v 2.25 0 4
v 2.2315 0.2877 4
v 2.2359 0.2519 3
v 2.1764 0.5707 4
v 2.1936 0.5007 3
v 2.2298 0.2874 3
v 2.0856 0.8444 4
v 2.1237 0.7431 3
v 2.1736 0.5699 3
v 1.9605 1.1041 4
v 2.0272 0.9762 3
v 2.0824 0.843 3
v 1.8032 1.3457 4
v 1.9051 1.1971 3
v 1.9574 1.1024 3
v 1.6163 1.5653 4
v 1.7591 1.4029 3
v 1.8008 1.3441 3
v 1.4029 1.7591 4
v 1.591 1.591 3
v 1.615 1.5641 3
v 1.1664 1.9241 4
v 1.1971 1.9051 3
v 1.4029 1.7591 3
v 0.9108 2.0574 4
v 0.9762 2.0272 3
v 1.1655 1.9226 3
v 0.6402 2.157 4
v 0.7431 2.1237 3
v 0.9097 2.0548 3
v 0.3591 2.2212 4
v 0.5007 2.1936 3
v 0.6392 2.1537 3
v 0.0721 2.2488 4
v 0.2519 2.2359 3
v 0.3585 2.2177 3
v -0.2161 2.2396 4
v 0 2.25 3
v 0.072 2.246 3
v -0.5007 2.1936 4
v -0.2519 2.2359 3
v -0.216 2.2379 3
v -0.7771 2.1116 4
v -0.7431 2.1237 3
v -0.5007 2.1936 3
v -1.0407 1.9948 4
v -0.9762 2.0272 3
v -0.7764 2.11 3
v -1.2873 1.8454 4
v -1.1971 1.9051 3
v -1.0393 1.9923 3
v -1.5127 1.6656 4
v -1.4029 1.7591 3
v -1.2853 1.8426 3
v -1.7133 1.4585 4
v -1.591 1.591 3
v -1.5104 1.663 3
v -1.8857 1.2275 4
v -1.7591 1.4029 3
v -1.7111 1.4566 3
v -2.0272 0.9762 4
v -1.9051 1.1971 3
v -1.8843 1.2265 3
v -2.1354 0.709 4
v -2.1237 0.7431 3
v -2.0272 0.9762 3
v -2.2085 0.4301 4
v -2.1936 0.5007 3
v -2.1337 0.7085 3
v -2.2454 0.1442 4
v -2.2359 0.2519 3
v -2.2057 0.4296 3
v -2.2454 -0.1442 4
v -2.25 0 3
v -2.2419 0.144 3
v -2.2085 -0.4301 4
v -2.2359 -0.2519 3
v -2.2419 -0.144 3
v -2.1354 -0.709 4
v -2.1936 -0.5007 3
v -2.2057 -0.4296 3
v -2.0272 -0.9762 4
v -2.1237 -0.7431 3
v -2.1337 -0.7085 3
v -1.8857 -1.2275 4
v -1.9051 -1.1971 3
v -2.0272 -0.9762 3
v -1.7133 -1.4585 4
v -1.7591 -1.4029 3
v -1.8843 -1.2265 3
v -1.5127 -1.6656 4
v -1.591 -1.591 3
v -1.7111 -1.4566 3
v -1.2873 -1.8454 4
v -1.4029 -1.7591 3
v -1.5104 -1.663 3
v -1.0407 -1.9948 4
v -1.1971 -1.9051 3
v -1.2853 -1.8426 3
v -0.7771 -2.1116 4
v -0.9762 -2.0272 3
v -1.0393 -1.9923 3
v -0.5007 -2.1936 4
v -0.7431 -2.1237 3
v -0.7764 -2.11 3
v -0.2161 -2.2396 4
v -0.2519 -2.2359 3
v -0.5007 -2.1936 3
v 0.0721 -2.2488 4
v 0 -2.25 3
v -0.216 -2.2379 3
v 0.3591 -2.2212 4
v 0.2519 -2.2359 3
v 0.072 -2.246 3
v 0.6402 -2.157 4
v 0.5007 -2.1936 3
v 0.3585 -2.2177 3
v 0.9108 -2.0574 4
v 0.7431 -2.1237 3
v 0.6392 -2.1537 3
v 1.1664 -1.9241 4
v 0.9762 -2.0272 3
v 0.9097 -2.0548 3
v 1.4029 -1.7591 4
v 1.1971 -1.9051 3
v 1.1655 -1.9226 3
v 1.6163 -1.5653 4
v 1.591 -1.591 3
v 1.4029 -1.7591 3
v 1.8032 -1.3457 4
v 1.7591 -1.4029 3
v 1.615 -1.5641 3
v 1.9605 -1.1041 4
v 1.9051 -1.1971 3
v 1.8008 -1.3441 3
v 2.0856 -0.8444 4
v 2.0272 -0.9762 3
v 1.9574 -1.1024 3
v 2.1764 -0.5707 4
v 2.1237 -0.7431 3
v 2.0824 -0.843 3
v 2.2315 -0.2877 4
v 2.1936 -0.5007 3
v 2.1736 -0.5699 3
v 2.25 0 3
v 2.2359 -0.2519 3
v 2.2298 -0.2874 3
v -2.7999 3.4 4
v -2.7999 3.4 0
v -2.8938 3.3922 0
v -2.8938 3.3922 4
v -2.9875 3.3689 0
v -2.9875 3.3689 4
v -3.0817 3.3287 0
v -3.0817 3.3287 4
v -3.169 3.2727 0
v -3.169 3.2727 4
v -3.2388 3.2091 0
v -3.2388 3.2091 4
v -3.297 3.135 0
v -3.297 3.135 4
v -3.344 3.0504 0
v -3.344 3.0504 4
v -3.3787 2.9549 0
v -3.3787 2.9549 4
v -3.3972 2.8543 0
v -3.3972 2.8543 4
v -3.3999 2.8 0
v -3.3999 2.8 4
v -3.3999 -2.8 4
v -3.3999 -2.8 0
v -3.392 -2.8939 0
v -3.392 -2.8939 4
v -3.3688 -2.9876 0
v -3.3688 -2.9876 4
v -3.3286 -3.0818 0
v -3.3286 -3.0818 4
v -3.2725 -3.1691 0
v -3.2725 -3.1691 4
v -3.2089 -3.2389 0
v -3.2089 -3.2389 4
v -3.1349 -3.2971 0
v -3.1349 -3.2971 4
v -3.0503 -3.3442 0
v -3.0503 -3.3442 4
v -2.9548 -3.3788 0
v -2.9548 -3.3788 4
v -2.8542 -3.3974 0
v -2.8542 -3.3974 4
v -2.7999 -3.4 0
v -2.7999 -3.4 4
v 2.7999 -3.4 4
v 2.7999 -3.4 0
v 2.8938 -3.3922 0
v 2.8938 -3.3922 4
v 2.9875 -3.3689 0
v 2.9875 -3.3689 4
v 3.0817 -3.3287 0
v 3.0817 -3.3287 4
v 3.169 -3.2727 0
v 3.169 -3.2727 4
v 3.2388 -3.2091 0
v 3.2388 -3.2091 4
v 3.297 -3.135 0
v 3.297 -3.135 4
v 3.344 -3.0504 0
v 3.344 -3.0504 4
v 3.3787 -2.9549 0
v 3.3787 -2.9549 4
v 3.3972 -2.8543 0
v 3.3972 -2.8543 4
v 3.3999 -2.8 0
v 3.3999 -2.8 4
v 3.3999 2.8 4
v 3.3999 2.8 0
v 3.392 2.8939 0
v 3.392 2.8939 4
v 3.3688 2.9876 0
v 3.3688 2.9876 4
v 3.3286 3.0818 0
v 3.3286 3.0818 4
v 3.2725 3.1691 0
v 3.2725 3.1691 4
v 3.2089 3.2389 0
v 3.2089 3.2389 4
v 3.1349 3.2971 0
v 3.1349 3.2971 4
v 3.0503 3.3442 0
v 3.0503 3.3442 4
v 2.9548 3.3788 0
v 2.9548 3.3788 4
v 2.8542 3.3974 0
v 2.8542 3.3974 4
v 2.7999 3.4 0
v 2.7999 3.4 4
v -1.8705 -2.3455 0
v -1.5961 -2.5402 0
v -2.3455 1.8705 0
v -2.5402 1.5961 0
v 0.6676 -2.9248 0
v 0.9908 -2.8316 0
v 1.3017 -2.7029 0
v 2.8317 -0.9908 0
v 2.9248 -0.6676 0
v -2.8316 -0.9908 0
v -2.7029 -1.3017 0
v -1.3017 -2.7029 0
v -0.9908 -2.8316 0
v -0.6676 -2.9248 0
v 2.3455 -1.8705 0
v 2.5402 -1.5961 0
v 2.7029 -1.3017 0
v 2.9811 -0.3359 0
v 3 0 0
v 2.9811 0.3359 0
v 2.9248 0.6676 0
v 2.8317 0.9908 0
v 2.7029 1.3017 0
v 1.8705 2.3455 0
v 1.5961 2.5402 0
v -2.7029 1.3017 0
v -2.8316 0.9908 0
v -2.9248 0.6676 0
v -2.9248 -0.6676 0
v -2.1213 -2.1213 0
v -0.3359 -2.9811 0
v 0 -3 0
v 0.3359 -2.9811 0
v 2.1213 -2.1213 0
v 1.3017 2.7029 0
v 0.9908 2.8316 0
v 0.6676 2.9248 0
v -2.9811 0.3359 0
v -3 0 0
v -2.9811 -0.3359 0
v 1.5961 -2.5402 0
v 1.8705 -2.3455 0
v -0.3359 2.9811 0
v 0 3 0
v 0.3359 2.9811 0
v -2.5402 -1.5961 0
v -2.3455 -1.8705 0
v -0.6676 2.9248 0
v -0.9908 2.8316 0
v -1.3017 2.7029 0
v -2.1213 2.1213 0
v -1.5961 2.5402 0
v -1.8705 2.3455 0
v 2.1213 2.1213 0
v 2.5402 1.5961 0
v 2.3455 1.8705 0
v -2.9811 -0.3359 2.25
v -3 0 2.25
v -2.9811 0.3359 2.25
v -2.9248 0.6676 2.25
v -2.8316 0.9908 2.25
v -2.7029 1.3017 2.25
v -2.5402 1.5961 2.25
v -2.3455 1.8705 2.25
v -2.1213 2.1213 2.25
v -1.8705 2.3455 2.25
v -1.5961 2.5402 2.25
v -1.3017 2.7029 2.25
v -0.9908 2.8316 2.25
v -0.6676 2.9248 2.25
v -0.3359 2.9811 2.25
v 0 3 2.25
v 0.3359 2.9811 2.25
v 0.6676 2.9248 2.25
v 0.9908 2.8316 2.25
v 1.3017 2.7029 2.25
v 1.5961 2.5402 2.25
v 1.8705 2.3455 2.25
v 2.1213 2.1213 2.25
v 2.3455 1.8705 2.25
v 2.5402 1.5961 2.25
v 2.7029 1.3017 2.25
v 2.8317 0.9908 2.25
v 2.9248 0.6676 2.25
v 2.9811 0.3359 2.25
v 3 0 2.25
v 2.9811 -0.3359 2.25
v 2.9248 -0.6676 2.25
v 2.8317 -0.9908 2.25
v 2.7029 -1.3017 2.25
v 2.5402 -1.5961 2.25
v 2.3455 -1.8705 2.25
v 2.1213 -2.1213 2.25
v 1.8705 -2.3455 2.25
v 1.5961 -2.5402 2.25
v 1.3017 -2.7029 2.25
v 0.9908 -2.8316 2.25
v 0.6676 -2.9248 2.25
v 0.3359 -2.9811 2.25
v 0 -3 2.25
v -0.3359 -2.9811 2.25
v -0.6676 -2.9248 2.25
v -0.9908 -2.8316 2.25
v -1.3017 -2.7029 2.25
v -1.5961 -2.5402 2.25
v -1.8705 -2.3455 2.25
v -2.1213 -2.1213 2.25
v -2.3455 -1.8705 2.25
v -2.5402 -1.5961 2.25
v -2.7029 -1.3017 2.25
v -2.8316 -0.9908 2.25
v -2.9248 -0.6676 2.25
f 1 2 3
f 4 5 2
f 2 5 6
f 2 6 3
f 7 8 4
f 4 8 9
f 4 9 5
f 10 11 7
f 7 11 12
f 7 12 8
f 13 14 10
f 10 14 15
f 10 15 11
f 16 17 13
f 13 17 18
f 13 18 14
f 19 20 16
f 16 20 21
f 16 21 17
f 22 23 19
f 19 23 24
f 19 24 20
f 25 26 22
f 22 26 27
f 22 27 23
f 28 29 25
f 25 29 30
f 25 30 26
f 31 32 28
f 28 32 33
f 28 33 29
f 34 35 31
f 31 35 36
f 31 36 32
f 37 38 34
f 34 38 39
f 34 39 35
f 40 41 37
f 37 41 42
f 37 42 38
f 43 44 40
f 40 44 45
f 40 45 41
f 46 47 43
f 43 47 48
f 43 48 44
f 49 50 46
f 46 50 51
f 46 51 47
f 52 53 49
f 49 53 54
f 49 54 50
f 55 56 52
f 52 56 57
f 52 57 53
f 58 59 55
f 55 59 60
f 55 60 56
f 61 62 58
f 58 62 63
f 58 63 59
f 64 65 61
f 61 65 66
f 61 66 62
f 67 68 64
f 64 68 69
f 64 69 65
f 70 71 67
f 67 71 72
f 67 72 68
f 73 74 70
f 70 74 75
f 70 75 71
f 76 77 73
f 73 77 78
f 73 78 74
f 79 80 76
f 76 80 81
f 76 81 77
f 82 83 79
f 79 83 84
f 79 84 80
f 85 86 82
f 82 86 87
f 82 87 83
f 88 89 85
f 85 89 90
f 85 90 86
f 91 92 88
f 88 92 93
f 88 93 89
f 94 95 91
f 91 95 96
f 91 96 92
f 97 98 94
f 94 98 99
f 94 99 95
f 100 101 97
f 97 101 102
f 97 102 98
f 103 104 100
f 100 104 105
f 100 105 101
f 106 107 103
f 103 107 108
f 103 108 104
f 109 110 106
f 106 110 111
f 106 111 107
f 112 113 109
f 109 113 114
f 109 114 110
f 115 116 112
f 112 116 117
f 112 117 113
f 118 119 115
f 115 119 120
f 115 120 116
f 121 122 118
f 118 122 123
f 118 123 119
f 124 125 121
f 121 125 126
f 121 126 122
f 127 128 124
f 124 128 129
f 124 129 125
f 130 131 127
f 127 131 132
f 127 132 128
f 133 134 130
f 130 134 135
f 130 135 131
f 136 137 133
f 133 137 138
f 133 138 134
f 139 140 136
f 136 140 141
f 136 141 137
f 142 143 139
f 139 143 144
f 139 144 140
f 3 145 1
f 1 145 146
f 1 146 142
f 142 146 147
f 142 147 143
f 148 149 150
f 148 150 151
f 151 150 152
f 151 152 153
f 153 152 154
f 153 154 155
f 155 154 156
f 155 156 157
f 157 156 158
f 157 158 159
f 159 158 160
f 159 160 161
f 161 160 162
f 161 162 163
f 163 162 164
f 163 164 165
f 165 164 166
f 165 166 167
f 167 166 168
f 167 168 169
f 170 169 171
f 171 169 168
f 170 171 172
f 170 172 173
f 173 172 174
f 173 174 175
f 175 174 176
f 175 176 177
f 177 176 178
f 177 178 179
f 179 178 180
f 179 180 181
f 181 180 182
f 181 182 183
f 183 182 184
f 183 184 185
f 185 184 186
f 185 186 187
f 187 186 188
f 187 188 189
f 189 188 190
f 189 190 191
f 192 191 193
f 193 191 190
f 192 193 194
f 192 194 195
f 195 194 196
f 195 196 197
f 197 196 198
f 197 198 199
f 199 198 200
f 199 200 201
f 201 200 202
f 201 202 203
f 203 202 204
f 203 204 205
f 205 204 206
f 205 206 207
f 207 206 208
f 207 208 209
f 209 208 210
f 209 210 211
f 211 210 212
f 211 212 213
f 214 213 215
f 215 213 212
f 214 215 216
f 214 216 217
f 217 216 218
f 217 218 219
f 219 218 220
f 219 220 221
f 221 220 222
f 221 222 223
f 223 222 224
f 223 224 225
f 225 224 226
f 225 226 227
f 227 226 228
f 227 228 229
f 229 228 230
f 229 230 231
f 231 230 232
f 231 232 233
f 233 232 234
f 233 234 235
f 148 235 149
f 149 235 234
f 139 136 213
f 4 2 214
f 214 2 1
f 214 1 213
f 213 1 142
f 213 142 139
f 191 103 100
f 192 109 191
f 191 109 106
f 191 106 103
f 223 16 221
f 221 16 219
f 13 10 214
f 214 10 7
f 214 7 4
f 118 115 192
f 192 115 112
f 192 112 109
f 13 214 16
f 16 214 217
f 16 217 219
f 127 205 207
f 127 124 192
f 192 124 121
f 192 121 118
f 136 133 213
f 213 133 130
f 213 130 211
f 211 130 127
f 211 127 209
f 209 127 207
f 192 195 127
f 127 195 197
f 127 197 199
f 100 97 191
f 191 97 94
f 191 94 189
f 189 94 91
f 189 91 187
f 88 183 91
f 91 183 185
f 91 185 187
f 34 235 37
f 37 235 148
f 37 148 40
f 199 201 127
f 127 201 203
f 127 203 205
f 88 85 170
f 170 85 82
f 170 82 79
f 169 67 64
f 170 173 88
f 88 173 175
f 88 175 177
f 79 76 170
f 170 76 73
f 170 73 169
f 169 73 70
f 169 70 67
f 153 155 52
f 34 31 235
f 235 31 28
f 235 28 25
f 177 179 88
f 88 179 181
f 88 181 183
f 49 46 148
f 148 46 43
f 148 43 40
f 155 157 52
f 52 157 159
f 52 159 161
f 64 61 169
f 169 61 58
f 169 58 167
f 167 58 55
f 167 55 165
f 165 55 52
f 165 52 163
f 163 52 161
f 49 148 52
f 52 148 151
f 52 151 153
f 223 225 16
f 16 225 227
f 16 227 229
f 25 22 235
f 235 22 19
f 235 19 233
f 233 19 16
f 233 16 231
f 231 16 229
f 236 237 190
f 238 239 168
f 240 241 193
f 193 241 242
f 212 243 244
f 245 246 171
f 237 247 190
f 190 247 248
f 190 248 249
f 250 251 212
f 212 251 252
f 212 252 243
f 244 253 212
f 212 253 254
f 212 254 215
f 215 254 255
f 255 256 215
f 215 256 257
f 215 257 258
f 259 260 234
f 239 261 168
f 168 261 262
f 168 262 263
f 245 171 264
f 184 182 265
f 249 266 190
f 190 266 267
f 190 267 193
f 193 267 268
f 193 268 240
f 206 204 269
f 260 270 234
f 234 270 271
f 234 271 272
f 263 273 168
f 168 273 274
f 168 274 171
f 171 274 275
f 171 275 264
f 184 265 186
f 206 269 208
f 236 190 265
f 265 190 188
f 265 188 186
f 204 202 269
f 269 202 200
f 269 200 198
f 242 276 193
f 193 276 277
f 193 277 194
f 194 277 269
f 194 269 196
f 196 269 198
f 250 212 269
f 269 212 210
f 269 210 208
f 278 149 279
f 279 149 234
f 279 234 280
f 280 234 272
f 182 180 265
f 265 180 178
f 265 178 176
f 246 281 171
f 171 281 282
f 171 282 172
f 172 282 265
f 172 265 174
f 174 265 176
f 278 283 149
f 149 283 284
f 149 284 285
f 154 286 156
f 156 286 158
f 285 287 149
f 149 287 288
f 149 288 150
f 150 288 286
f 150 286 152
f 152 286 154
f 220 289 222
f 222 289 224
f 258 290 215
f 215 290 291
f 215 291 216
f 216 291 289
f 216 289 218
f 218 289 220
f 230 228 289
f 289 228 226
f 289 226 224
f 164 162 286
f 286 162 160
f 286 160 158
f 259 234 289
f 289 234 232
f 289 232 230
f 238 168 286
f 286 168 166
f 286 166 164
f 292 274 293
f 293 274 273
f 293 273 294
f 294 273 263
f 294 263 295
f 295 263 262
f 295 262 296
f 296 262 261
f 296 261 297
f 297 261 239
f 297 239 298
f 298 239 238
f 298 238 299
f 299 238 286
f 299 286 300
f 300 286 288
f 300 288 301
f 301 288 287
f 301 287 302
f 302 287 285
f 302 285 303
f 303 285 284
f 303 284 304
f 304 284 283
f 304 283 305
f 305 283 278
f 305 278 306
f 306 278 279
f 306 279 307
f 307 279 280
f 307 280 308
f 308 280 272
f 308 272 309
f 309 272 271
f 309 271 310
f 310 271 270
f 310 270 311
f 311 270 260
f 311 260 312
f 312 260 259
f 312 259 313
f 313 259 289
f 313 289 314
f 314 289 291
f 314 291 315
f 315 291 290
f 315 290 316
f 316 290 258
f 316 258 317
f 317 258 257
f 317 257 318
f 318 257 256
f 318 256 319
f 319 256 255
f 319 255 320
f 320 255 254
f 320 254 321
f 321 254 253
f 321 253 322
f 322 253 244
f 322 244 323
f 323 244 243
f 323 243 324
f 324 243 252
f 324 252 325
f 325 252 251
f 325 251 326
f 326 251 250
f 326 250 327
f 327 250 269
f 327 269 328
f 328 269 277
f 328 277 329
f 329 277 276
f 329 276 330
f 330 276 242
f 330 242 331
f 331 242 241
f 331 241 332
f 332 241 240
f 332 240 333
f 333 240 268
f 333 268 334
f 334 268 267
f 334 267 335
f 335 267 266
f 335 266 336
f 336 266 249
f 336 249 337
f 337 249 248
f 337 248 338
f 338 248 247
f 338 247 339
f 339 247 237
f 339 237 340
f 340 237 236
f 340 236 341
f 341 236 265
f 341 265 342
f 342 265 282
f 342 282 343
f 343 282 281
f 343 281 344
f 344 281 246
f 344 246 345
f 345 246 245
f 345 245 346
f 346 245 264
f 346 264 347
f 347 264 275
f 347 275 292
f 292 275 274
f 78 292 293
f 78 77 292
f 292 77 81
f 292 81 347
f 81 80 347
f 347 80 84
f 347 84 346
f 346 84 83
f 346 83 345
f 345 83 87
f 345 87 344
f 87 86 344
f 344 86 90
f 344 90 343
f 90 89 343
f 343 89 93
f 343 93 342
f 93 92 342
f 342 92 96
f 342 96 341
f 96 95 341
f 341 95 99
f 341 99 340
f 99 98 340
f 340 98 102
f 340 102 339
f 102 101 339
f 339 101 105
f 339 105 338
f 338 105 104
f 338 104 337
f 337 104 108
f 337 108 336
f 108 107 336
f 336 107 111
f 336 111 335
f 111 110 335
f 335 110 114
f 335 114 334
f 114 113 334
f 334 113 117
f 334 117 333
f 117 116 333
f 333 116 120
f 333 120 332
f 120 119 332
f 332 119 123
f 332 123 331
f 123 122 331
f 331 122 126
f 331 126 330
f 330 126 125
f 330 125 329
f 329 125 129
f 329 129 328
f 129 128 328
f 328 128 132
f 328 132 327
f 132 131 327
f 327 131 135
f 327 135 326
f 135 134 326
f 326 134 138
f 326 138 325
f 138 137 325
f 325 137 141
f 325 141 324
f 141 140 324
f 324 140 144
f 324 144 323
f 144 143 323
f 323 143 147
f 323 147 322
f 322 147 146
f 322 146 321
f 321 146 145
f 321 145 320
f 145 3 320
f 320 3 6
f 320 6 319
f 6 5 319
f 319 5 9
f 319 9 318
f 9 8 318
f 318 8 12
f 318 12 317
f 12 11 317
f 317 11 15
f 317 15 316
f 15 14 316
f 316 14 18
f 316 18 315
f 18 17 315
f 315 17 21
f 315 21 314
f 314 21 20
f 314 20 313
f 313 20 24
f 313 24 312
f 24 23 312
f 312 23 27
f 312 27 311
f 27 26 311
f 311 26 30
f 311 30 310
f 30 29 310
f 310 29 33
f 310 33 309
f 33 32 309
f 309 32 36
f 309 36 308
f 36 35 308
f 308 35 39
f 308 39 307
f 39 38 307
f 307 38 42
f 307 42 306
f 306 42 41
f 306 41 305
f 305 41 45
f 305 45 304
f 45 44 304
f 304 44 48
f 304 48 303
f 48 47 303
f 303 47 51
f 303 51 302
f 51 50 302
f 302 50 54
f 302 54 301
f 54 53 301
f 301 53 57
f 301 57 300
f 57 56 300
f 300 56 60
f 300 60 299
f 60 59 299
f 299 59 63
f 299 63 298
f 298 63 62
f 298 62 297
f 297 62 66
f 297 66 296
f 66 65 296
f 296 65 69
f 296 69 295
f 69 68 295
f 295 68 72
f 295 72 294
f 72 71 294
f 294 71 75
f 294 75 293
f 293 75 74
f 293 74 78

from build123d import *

# Parameters (mm, degrees)
BOSS_EXTRUDE1_DEPTH = 4
SKETCH2_R           = 2.25
CUT_EXTRUDE1_DEPTH  = 4
SKETCH3_R           = 3
CUT_EXTRUDE2_DEPTH  = 2
CHAMFER1_SIZE       = 1


with BuildPart() as part:
    # Sketch1 → Boss-Extrude1 (new body)
    with BuildSketch(Plane.XY):
        with BuildLine():
            Line((-3.399881961, 2.8), (-3.399881961, -2.8))
            add(Edge.make_bspline(
                [(-3.399881961, -2.8), (-3.399881961, -2.953071187), (-3.271882834, -3.271984466), (-2.952966029, -3.4), (-2.799893385, -3.4)],
                knots=[-1.570796327, -1.570796327, -1.570796327, -1.570796327, -0.785398163, 0, 0, 0, 0], degree=3))
            Line((-2.799893385, -3.4), (2.799893385, -3.4))
            add(Edge.make_bspline(
                [(2.799893385, -3.4), (2.952966029, -3.4), (3.271882834, -3.271984466), (3.399881961, -2.953071187), (3.399881961, -2.8)],
                knots=[0, 0, 0, 0, 0.785398163, 1.570796327, 1.570796327, 1.570796327, 1.570796327], degree=3))
            Line((3.399881961, -2.8), (3.399881961, 2.8))
            add(Edge.make_bspline(
                [(3.399881961, 2.8), (3.399881961, 2.953071187), (3.271882834, 3.271984466), (2.952966029, 3.4), (2.799893385, 3.4)],
                knots=[1.570796327, 1.570796327, 1.570796327, 1.570796327, 2.35619449, 3.141592654, 3.141592654, 3.141592654, 3.141592654], degree=3))
            Line((2.799893385, 3.4), (-2.799893385, 3.4))
            add(Edge.make_bspline(
                [(-2.799893385, 3.4), (-2.952966029, 3.4), (-3.271882834, 3.271984466), (-3.399881961, 2.953071187), (-3.399881961, 2.8)],
                knots=[-3.141592654, -3.141592654, -3.141592654, -3.141592654, -2.35619449, -1.570796327, -1.570796327, -1.570796327, -1.570796327], degree=3))
        make_face()
    extrude(amount=BOSS_EXTRUDE1_DEPTH)

    # Sketch2 → Cut-Extrude1 (cut)
    with BuildSketch(Plane.XY.offset(4)):
        Circle(SKETCH2_R)
    extrude(amount=-CUT_EXTRUDE1_DEPTH, mode=Mode.SUBTRACT)

    # Sketch3 → Cut-Extrude2 (cut)
    with BuildSketch(Plane(origin=(0, 0, 0), x_dir=(-1, 0, 0), z_dir=(0, 0, -1))):
        Circle(SKETCH3_R)
    extrude(amount=-CUT_EXTRUDE2_DEPTH, mode=Mode.SUBTRACT)

    # Chamfer1
    # the kernel refuses this chamfer: 1 mm, written as the material it takes off along each edge
    with BuildSketch(Plane(origin=(0, 0, 2), x_dir=(1, 0, 0), z_dir=(0, -1, 0))) as chamfer1_piece_1_section:
        Polygon((2.25, CHAMFER1_SIZE), (2.25 + CHAMFER1_SIZE, 0), (2.25, 0), align=None)
    chamfer1_piece_1 = revolve(axis=Axis((0, 0, 2), (0, 0, 1)), mode=Mode.PRIVATE)
    chamfer1_piece_1 = chamfer1_piece_1 & Plane(origin=(0, 0, 2.624934748), x_dir=(-1, 0, 0), z_dir=(0, 0, -1)) * Cylinder(3, 13, mode=Mode.PRIVATE)
    add(chamfer1_piece_1, mode=Mode.SUBTRACT)


solid = part.part
